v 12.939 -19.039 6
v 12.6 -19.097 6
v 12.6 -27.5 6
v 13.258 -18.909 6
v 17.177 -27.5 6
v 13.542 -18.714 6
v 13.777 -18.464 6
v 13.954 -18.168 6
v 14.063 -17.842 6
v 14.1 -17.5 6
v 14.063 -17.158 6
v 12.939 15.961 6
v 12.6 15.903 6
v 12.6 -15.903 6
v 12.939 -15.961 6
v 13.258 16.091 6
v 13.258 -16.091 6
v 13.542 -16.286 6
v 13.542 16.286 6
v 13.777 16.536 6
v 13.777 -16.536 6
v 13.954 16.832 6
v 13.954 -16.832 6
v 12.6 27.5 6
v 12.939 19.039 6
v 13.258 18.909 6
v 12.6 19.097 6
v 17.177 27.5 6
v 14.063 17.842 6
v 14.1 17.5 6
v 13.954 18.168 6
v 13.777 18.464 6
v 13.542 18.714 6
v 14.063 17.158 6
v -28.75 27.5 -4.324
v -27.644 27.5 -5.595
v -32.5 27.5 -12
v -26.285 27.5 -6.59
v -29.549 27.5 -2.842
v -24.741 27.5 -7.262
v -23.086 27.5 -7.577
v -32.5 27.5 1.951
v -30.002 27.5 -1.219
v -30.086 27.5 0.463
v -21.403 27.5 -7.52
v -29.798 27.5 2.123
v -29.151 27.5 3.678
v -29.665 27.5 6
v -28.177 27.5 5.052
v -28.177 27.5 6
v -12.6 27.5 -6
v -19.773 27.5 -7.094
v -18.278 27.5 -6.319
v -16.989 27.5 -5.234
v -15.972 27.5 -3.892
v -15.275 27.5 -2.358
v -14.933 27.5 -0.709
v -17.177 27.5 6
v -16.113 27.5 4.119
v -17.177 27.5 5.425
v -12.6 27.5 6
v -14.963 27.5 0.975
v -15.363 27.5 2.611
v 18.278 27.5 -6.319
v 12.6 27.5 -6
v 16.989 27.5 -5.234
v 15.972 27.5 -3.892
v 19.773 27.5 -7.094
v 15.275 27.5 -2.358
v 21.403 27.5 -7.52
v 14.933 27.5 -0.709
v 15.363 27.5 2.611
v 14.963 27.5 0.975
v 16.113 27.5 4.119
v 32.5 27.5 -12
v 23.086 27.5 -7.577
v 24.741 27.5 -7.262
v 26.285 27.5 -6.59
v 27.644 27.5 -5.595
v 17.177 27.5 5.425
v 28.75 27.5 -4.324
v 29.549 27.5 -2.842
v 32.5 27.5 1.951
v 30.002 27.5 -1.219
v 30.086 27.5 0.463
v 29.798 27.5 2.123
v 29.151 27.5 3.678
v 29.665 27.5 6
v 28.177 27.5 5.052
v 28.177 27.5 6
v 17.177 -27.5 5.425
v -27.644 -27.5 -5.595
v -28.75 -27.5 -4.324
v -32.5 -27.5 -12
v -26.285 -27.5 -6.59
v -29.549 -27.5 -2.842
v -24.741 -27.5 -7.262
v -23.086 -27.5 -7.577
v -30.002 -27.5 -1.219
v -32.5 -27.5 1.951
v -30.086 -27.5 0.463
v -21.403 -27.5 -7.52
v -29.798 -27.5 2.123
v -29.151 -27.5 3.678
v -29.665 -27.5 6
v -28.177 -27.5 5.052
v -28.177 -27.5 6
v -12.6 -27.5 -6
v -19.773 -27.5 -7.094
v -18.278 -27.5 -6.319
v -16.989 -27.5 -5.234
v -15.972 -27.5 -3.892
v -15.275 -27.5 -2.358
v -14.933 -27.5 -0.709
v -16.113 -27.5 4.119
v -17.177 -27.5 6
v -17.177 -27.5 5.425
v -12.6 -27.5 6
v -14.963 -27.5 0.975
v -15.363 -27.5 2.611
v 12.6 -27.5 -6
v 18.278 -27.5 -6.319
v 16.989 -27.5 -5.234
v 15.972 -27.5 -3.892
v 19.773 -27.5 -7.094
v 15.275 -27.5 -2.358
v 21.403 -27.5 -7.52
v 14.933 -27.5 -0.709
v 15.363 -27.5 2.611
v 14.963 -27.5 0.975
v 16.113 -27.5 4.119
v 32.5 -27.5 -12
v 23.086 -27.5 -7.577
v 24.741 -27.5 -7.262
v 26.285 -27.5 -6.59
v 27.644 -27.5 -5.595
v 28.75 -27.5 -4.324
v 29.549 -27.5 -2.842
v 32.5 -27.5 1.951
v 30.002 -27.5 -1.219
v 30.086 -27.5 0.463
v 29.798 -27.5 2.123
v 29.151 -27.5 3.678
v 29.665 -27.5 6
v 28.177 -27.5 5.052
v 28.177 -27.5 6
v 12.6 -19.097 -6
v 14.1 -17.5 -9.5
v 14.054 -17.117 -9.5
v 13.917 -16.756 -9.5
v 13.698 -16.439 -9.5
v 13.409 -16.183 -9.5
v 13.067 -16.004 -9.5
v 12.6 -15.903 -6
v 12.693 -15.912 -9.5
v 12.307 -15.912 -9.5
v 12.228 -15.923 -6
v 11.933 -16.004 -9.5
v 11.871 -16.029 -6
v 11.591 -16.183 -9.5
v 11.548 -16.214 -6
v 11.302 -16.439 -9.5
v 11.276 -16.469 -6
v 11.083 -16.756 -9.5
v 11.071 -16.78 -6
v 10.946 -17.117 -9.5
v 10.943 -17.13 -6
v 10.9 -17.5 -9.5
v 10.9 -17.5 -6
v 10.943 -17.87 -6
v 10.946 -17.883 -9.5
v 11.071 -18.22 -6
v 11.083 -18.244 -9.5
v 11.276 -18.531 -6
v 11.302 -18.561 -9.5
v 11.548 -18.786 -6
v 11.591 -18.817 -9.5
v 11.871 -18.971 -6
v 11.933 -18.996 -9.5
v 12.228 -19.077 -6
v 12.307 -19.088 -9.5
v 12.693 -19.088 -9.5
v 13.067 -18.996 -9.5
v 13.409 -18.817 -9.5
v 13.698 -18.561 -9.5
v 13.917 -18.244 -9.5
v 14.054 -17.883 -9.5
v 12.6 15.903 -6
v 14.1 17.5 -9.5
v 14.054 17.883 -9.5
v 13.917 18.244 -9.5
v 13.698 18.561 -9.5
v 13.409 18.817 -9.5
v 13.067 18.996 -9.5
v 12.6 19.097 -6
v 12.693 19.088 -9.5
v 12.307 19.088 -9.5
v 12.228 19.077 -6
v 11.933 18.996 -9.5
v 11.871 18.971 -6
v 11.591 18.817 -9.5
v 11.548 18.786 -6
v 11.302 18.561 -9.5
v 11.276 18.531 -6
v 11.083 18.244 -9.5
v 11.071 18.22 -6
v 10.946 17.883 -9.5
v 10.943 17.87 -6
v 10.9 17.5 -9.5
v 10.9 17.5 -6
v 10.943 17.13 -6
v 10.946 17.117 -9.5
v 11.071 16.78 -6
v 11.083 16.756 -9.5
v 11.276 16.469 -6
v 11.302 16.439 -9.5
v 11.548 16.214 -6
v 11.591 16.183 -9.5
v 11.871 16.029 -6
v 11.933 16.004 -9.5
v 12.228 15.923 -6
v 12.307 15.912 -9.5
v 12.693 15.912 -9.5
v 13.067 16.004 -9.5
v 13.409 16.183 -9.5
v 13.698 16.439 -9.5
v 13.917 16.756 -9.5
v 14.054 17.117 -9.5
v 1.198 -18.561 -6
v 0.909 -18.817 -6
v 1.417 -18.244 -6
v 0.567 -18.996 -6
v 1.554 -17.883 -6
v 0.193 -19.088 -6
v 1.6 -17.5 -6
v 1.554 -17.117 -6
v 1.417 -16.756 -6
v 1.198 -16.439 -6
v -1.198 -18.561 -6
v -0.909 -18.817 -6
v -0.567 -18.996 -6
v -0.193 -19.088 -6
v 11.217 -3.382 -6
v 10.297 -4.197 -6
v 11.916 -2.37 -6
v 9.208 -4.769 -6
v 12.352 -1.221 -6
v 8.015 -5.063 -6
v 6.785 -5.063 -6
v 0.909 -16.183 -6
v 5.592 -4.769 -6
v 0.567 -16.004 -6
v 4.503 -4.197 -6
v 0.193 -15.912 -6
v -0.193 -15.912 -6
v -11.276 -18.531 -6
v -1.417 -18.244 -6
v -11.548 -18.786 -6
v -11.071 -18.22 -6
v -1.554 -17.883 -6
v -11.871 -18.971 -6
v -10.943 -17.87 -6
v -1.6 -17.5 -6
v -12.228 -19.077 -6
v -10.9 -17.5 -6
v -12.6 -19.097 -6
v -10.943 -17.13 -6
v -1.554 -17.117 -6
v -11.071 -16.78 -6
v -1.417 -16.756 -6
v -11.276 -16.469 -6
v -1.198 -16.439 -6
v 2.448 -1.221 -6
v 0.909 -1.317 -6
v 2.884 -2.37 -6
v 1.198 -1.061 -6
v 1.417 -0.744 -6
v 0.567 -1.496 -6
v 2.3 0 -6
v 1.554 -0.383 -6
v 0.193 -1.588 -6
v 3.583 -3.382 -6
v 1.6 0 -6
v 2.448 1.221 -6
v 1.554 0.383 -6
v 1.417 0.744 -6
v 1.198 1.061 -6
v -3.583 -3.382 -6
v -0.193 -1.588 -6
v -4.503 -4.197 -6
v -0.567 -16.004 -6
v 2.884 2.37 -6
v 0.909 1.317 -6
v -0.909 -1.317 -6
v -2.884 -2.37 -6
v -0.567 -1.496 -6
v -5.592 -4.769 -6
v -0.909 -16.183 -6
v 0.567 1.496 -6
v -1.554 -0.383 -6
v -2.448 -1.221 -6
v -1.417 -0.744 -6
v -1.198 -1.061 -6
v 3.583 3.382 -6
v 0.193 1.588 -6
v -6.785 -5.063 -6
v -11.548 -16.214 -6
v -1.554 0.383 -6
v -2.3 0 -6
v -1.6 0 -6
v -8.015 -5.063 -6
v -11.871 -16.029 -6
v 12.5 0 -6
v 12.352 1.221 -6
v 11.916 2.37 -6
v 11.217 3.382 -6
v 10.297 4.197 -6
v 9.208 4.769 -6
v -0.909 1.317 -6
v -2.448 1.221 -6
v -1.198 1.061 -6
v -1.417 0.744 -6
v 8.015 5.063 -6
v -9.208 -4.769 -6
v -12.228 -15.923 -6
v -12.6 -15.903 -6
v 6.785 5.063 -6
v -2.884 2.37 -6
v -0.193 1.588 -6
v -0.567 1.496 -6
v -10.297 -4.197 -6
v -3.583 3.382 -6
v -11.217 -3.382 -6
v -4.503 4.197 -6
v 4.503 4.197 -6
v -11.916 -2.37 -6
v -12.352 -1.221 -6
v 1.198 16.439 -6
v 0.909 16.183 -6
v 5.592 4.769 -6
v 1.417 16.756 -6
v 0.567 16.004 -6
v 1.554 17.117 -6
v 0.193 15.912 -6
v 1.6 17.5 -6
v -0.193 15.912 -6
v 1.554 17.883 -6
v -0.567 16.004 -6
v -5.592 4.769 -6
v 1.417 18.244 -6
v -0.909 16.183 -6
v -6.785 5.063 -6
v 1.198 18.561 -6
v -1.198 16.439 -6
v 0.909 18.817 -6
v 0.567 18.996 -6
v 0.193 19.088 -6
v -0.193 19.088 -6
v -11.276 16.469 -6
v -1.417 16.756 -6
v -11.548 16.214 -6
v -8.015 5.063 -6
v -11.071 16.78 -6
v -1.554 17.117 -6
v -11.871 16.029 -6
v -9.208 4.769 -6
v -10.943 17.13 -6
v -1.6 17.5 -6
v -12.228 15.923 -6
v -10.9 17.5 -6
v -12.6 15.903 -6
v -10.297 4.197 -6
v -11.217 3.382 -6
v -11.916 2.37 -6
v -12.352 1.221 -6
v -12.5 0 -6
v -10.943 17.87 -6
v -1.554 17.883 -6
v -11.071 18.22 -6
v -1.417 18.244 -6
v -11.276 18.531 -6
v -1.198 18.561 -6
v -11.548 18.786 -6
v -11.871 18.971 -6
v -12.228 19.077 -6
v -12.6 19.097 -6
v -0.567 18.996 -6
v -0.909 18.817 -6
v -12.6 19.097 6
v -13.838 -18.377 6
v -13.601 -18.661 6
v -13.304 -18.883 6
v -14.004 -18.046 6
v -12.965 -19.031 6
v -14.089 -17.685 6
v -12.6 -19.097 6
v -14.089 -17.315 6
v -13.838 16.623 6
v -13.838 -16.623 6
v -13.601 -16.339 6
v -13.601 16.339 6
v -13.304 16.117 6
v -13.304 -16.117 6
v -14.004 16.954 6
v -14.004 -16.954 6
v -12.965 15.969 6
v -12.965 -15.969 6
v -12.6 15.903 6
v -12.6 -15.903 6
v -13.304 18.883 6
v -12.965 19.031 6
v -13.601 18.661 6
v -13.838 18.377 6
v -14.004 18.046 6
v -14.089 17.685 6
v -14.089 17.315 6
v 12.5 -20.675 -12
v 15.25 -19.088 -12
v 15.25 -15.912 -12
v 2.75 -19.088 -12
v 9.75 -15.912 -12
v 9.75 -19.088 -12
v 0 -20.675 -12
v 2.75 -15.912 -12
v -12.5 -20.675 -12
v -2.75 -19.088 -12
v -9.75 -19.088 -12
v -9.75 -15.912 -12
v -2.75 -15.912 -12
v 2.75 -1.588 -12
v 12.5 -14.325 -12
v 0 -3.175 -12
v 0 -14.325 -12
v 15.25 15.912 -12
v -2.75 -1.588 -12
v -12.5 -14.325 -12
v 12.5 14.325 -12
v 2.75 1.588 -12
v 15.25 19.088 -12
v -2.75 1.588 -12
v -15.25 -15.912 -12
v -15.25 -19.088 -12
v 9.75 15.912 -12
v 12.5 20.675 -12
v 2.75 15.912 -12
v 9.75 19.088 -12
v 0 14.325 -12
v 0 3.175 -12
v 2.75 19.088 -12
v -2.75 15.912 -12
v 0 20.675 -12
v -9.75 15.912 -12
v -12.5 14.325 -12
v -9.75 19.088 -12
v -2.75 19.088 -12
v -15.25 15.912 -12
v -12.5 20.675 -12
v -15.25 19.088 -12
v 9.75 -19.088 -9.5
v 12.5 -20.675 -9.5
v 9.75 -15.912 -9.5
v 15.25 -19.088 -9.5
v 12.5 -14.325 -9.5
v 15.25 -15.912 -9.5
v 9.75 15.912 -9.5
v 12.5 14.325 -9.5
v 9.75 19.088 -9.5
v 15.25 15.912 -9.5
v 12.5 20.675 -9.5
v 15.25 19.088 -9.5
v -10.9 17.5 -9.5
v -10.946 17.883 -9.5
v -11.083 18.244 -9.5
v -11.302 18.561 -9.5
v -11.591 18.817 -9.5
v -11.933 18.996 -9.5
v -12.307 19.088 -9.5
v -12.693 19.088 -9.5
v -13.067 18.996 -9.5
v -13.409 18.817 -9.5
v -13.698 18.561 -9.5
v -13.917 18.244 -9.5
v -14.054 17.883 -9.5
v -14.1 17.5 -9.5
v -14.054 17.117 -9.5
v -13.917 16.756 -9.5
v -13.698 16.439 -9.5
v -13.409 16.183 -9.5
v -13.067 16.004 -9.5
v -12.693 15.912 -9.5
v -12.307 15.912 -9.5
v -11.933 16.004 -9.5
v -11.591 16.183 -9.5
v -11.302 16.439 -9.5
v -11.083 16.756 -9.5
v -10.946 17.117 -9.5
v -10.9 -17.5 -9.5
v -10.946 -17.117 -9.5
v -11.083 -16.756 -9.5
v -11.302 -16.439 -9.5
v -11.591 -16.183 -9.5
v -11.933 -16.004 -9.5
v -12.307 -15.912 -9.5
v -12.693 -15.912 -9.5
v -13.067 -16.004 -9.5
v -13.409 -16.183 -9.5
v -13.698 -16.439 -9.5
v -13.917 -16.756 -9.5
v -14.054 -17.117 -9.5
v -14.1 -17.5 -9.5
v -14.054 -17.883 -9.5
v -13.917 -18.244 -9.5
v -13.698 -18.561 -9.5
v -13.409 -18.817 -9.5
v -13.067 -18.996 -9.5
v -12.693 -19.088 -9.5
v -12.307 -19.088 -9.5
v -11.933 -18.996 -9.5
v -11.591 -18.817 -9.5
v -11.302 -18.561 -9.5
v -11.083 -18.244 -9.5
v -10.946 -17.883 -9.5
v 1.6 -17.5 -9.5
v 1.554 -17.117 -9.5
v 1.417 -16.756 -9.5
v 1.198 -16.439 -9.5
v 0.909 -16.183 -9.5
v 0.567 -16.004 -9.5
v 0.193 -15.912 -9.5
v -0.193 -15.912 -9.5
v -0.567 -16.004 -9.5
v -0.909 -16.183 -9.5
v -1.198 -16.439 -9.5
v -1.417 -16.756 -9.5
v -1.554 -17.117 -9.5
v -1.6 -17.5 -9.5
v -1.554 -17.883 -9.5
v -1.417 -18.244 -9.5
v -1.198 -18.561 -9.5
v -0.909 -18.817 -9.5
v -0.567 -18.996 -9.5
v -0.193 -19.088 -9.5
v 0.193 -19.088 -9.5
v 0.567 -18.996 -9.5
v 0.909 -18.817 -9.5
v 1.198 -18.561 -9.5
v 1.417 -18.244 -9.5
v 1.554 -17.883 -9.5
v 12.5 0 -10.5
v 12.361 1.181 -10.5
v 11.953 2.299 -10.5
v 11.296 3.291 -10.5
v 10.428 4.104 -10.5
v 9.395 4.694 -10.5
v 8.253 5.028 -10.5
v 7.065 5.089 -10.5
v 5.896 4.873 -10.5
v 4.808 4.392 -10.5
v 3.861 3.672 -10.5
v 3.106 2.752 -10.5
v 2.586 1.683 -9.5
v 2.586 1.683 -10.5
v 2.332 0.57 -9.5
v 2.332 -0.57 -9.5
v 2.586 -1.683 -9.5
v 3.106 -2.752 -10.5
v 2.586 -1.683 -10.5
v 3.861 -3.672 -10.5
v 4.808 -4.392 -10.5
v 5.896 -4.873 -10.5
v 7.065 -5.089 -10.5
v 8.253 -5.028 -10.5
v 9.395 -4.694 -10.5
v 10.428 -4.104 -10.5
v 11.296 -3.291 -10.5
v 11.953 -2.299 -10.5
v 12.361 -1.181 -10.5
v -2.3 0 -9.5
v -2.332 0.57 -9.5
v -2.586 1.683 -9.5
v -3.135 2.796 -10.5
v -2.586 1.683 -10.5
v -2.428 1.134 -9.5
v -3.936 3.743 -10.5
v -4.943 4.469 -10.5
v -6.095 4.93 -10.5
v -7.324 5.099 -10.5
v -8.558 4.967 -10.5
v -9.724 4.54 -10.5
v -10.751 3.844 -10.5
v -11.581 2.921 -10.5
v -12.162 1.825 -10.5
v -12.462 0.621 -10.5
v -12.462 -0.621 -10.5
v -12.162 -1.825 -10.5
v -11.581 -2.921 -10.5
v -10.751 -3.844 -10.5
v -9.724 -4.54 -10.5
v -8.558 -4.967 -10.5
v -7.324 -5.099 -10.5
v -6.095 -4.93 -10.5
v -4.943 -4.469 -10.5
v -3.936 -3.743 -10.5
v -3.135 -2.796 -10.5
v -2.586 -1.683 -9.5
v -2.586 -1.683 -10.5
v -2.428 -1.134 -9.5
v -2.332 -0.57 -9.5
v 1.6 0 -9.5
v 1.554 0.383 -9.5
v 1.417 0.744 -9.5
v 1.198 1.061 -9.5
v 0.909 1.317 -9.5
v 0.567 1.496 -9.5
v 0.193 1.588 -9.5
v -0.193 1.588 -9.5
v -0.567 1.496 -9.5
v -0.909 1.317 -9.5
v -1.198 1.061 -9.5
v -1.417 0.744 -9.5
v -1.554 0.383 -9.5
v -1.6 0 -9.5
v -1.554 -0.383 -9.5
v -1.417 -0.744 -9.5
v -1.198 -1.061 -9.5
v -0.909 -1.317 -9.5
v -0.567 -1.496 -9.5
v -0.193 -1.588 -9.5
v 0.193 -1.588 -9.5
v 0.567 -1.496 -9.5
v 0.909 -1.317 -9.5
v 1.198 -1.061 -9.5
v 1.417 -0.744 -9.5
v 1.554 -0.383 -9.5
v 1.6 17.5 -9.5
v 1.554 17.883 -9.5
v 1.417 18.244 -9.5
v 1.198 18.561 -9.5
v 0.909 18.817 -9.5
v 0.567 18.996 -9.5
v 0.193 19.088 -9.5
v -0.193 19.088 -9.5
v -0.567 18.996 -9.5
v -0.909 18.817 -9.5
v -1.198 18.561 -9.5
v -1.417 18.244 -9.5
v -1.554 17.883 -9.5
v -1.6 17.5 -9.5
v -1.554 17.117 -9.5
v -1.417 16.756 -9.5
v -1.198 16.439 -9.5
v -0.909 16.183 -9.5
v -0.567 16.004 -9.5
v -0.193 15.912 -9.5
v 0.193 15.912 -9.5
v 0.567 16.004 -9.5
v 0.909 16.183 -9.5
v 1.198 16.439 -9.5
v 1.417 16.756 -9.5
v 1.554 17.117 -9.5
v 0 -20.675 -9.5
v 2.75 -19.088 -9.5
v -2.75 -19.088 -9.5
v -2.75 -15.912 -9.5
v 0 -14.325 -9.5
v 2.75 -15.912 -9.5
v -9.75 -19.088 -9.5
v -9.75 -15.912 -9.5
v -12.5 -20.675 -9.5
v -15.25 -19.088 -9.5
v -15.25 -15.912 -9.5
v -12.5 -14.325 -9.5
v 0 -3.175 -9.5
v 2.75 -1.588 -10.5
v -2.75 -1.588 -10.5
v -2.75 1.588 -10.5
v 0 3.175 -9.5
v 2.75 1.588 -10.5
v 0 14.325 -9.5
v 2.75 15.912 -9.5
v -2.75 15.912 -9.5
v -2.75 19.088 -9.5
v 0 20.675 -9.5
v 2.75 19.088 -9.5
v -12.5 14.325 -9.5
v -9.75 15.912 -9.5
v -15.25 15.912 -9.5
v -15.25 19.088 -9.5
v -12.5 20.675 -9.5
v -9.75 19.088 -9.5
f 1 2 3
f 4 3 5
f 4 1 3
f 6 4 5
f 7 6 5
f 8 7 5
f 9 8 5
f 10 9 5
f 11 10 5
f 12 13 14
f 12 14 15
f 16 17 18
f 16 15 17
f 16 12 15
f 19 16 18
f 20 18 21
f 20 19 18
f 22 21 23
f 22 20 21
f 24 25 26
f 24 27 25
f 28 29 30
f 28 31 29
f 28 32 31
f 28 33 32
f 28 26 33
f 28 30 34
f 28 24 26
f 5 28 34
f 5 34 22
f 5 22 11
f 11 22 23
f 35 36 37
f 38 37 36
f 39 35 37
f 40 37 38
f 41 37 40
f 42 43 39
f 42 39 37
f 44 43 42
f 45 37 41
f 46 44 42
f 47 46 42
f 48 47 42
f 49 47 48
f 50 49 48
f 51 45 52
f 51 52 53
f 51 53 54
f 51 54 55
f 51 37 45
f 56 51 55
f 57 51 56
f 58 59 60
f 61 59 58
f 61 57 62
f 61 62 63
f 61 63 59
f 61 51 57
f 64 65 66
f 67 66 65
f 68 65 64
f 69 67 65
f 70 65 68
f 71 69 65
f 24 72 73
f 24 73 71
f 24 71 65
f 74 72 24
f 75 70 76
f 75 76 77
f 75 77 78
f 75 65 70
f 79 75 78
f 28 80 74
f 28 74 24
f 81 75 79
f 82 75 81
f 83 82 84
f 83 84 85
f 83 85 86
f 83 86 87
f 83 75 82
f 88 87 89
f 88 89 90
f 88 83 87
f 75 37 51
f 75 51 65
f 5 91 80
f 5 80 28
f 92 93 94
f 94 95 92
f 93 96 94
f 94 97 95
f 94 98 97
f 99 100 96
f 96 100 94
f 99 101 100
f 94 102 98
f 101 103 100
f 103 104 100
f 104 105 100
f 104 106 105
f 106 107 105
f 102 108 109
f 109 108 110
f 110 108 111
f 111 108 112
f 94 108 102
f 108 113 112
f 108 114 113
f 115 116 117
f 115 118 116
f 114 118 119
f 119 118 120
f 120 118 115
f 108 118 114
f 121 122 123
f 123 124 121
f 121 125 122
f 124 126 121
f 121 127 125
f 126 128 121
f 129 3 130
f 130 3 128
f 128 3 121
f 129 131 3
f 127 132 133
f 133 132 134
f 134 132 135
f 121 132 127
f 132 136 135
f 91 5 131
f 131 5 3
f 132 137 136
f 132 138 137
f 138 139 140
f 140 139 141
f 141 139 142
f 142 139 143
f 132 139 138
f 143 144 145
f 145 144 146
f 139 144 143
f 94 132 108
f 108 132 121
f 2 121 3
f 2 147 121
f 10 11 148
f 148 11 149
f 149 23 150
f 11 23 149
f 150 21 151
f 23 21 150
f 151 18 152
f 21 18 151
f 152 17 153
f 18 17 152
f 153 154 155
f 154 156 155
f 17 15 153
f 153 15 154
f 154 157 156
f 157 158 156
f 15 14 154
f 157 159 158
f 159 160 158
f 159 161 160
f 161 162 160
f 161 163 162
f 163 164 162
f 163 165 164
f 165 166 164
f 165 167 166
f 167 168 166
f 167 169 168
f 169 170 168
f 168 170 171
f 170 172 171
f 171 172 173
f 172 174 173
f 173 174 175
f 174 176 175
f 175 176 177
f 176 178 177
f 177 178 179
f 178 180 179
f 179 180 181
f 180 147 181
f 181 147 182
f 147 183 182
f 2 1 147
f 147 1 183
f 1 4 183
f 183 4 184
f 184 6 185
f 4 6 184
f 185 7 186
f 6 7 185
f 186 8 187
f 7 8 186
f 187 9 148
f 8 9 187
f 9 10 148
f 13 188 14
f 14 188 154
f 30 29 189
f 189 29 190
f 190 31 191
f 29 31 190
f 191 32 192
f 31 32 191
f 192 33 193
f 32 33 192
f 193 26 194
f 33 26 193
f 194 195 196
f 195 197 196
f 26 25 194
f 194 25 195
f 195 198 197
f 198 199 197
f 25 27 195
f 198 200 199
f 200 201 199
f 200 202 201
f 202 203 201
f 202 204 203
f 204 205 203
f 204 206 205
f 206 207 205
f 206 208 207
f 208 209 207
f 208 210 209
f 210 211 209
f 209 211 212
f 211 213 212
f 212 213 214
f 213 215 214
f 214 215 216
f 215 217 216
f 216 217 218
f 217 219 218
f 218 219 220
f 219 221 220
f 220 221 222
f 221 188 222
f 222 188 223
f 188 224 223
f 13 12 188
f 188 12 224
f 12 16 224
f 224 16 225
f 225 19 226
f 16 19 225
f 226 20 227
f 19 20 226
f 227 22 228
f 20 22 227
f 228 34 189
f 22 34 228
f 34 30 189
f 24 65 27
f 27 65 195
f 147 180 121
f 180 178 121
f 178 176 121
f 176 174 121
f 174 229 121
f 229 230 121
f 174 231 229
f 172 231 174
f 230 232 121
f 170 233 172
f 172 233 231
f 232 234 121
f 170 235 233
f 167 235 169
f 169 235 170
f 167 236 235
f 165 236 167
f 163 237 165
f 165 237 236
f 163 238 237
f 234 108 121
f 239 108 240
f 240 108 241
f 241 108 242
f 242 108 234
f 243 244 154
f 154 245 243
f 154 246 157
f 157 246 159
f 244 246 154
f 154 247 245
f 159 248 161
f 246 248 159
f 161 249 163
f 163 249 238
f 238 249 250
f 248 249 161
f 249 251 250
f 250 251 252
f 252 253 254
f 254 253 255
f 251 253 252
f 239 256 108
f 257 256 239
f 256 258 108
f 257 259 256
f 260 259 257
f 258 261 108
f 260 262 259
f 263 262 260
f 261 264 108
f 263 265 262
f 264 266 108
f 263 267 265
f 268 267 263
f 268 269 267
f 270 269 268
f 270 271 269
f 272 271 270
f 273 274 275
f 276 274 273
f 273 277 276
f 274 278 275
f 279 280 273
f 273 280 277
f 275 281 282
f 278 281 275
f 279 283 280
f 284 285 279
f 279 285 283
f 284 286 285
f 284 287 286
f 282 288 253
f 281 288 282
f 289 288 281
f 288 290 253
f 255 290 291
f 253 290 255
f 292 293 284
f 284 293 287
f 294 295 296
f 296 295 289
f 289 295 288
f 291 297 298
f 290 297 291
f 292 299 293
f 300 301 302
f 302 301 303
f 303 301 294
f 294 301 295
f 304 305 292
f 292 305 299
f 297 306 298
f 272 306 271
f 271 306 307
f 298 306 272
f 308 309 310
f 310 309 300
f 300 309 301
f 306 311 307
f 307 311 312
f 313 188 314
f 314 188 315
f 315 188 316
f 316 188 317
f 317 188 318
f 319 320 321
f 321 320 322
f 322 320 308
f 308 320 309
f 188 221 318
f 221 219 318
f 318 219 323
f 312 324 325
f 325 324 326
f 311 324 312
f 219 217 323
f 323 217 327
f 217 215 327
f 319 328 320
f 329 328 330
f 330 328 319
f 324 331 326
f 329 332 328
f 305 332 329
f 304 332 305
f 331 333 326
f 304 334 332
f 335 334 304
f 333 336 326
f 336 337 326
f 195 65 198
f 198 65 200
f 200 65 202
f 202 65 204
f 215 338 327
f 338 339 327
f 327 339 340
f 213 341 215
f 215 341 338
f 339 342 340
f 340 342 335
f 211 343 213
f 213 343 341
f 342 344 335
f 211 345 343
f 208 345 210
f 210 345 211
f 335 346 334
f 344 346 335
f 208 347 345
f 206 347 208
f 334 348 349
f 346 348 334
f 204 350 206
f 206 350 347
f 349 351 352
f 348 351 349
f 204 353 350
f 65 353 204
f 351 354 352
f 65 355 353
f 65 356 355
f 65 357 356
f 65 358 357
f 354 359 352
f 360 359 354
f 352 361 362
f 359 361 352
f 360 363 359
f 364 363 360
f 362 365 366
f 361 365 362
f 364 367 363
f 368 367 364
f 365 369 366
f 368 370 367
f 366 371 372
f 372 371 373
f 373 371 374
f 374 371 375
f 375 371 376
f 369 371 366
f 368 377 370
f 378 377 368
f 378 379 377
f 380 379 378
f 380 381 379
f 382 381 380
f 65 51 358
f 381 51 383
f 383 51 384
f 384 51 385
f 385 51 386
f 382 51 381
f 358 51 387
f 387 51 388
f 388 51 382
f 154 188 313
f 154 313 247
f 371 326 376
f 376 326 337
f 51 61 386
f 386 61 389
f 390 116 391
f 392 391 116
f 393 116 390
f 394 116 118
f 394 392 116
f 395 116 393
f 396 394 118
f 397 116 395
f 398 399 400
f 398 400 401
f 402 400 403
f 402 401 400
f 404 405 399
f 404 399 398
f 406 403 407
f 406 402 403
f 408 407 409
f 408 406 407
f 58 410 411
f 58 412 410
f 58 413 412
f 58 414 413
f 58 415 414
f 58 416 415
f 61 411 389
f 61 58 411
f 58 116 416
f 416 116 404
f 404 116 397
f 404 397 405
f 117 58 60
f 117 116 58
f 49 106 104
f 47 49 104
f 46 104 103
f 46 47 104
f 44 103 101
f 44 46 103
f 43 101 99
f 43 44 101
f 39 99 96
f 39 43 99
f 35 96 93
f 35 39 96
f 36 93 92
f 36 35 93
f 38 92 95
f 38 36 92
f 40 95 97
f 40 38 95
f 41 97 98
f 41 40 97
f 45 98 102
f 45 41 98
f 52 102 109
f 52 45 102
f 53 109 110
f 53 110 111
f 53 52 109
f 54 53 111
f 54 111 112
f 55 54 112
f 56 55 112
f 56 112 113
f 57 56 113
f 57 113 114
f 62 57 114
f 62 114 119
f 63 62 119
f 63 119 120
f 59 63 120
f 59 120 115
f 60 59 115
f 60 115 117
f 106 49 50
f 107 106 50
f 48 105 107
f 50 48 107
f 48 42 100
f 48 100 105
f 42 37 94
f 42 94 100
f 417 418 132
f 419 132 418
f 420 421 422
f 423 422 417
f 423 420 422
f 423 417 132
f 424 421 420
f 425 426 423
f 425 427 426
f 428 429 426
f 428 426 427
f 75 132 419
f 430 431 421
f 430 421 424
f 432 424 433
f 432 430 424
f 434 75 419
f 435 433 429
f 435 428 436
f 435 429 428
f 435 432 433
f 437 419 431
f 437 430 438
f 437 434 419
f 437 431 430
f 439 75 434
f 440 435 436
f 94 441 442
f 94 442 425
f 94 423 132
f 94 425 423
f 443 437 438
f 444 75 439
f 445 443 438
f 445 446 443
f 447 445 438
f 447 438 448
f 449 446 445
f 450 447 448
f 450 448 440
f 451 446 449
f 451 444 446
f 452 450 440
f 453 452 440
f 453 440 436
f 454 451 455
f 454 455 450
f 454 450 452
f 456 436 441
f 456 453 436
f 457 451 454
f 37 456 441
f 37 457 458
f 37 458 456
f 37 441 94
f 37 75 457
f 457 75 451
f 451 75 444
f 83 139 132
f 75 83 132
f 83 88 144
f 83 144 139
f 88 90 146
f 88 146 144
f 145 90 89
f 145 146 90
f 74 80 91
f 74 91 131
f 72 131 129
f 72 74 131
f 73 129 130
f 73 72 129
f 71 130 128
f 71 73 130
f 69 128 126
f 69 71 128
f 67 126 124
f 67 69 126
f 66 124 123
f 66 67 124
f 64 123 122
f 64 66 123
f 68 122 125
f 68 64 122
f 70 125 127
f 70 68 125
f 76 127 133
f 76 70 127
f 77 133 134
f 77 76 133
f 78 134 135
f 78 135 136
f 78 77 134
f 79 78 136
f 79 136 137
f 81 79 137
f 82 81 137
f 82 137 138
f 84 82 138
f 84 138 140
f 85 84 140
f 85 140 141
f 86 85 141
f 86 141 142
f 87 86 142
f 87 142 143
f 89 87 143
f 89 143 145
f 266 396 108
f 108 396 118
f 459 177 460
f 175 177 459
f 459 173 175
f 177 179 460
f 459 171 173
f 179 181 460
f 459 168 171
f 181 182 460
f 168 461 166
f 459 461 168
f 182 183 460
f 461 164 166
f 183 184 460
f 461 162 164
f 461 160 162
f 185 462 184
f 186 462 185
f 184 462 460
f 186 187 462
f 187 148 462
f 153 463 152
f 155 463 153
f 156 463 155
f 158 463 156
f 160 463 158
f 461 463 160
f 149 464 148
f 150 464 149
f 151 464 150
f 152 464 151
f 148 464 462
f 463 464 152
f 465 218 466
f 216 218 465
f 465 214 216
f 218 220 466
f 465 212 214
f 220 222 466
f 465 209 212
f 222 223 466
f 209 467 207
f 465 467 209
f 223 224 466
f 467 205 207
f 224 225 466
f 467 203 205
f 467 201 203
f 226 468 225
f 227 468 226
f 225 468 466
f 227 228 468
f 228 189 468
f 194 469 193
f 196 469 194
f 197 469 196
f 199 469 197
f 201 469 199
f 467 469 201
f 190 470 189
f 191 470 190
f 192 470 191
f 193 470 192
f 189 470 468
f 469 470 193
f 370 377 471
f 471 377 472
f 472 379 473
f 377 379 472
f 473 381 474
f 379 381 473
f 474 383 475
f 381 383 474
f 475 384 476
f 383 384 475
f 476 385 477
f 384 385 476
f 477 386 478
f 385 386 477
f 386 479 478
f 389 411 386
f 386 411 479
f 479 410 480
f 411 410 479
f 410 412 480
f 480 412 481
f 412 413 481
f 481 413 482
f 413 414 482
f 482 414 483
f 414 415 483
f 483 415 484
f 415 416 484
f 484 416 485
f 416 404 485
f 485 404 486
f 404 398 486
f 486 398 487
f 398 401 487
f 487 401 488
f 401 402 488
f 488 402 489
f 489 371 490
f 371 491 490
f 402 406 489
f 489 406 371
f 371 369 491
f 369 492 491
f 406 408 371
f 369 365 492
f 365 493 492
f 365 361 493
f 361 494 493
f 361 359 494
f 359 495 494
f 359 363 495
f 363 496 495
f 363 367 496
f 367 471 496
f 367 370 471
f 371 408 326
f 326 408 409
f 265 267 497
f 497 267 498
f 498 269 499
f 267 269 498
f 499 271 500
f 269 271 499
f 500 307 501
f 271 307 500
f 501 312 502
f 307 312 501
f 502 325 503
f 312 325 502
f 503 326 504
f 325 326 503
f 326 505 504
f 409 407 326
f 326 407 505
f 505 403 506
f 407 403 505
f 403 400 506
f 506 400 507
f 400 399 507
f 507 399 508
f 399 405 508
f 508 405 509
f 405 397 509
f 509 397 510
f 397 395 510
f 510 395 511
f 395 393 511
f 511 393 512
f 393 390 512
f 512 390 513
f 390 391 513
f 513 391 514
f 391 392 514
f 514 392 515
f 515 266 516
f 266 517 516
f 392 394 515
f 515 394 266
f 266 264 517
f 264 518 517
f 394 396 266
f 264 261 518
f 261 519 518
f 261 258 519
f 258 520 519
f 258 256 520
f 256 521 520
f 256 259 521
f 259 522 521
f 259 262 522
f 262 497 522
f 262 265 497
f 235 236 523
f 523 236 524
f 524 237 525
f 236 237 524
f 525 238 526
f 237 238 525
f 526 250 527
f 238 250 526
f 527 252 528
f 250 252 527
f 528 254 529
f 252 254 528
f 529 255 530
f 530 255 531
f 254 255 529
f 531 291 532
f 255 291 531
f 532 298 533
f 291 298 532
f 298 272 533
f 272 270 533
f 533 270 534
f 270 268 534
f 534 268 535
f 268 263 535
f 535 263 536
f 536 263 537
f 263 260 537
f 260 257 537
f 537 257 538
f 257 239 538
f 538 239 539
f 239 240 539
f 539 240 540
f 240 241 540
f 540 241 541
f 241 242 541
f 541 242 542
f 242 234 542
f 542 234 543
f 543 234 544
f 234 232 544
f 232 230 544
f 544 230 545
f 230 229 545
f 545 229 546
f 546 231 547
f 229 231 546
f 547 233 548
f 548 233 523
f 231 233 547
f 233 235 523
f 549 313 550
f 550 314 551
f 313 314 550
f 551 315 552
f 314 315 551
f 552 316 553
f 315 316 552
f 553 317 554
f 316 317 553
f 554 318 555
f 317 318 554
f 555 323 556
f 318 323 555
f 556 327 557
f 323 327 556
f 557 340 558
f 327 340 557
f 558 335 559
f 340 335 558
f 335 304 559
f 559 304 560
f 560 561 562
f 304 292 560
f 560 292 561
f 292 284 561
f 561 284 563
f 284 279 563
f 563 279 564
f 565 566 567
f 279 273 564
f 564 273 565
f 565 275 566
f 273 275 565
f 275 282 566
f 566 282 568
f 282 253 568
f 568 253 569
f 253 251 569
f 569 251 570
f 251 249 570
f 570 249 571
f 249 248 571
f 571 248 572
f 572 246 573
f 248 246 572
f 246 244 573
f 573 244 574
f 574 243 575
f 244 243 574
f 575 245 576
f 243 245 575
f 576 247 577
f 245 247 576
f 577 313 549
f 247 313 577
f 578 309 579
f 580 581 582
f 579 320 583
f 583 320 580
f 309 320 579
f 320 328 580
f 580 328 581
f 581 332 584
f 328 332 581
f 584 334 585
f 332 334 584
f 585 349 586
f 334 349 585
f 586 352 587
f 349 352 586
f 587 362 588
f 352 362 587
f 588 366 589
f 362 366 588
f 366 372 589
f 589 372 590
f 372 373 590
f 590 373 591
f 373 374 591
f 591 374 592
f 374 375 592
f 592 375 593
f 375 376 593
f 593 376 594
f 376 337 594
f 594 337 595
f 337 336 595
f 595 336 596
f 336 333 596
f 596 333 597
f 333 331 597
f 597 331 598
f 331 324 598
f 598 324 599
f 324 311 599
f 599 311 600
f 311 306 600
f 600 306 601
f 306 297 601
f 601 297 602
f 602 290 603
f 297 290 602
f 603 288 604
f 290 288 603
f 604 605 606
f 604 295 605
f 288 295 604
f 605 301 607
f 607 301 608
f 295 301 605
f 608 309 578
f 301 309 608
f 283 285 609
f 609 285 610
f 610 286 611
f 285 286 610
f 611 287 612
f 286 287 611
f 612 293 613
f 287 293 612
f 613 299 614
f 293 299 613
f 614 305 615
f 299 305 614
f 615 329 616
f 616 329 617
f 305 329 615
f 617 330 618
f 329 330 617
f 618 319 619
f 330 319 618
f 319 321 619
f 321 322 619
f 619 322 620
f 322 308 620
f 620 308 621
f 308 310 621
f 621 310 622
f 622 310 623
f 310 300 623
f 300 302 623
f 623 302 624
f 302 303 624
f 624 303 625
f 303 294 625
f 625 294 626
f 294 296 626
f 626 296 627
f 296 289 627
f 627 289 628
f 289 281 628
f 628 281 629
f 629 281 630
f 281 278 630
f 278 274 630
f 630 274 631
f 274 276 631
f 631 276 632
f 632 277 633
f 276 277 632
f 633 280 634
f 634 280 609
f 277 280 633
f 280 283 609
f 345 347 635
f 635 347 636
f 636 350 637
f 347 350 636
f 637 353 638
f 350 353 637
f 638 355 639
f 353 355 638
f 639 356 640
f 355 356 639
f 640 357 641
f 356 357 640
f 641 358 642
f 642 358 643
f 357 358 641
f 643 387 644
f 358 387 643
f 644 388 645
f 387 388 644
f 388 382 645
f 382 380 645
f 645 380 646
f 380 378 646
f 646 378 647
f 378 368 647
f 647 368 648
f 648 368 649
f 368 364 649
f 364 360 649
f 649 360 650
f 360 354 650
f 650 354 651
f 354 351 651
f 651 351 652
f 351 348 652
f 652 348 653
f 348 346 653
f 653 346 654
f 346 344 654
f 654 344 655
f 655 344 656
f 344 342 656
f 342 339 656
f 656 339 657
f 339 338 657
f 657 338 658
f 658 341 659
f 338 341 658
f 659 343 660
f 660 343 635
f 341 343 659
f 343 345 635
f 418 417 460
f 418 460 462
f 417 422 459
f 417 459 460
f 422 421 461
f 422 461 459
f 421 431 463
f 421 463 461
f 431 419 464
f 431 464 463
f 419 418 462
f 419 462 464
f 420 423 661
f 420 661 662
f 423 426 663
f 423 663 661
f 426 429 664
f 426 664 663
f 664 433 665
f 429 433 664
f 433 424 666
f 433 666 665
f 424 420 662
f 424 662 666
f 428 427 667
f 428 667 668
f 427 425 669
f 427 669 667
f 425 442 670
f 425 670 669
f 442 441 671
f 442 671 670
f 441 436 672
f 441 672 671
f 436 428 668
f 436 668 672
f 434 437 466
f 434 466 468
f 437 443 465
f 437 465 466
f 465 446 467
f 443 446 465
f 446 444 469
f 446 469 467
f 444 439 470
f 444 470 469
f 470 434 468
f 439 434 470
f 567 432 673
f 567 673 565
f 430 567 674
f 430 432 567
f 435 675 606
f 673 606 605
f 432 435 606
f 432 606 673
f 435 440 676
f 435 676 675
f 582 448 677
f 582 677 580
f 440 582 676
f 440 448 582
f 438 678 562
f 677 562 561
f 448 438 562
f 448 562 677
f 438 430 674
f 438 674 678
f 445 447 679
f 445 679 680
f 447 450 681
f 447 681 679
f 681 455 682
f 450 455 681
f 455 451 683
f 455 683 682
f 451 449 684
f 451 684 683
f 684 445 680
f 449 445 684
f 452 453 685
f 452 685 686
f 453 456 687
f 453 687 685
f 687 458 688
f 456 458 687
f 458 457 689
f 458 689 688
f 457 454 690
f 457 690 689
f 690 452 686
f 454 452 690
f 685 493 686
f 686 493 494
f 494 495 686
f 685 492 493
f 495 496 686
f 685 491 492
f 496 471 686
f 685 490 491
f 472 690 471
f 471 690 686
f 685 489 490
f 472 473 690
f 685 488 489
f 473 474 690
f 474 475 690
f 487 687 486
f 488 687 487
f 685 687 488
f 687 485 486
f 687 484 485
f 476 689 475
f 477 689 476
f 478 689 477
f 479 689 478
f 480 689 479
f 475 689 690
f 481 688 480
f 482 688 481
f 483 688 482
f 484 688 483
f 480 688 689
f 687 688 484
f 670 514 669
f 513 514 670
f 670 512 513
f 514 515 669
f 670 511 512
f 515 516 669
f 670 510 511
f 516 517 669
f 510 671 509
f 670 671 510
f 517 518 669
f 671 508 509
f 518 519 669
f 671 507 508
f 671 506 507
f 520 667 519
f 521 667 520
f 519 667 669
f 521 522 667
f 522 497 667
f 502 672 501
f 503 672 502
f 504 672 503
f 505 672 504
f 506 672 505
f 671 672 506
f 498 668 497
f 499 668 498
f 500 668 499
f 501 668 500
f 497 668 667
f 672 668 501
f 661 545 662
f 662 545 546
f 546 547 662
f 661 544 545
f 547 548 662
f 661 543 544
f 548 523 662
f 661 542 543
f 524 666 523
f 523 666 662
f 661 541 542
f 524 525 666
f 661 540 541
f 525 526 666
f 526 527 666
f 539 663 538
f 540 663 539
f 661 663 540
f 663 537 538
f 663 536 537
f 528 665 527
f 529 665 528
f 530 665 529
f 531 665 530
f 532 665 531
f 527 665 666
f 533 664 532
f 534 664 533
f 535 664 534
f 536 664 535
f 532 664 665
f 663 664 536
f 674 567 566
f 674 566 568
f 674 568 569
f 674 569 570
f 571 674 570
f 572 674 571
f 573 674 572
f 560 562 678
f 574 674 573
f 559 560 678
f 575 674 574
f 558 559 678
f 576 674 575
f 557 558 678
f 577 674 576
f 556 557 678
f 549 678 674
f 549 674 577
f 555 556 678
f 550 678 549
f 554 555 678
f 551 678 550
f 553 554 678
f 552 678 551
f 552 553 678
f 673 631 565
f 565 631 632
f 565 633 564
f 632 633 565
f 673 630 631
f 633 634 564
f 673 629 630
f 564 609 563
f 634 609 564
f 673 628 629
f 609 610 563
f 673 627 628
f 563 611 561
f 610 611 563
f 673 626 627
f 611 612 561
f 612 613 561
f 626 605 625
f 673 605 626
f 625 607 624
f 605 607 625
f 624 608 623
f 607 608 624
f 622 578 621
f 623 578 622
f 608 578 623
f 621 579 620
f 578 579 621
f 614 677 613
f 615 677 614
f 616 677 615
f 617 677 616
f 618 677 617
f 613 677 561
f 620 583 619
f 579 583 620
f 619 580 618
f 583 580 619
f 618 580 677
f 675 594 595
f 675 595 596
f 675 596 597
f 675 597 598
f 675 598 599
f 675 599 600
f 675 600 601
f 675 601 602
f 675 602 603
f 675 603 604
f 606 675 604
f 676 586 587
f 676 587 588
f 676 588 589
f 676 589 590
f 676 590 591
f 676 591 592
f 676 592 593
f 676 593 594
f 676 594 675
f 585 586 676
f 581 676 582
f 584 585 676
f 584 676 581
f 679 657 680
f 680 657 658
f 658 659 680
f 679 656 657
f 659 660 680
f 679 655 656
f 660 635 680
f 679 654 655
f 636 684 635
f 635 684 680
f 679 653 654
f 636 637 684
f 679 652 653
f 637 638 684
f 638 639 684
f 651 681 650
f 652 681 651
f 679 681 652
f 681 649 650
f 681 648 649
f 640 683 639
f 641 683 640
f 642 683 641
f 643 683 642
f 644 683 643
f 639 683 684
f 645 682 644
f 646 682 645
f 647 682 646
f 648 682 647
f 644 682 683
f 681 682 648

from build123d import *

# Parameters (mm, degrees)
PAD_DEPTH            = 27.5
SKETCH001_R          = 1.6
POCKET_DEPTH         = 12.001
POCKET_DEPTH_BACK    = -6.001
SKETCH002_R          = 5.1
POCKET001_DEPTH      = 10.5
SKETCH004_W          = 11
SKETCH004_H          = 11
POCKET003_DEPTH      = 27.501
POCKET003_DEPTH_BACK = -27.501
POCKET004_DEPTH      = 2.5


with BuildPart() as part:
    # Sketch → Pad (new body, symmetric)
    with BuildSketch(Plane.XZ):
        with BuildLine():
            Line((-29.664762, 6), (-27.164762, 6))
            ThreePointArc((-27.164762, 6), (-22.5, -7.6), (-17.835238, 6))
            Line((-17.835238, 6), (-12.6, 6))
            Line((-12.6, -6), (-12.6, 6))
            Line((12.6, -6), (-12.6, -6))
            Line((12.6, 6), (12.6, -6))
            Line((12.6, 6), (17.835238, 6))
            ThreePointArc((17.835238, 6), (22.5, -7.6), (27.164762, 6))
            Line((27.164762, 6), (29.664762, 6))
            Line((29.664762, 6), (32.5, 1.95086))
            Line((32.5, 1.95086), (32.5, -12))
            Line((32.5, -12), (-32.5, -12))
            Line((-32.5, -12), (-32.5, 1.95086))
            Line((-32.5, 1.95086), (-29.664762, 6))
        make_face()
    extrude(amount=PAD_DEPTH, both=True)

    # Sketch001 → Pocket (cut, two sides)
    with BuildSketch(Plane.XY) as pocket_sk:
        with Locations((-12.5, 17.5)):
            Circle(SKETCH001_R)
        with Locations((-12.5, -17.5)):
            Circle(SKETCH001_R)
        with Locations((12.5, 17.5)):
            Circle(SKETCH001_R)
        with Locations((12.5, -17.5)):
            Circle(SKETCH001_R)
        with Locations((0, 17.5)):
            Circle(SKETCH001_R)
        with Locations((0, -17.5)):
            Circle(SKETCH001_R)
        Circle(SKETCH001_R)
    extrude(amount=-POCKET_DEPTH, mode=Mode.SUBTRACT)
    extrude(pocket_sk.sketch, amount=-POCKET_DEPTH_BACK, mode=Mode.SUBTRACT)

    # Sketch002 → Pocket001 (cut)
    with BuildSketch(Plane.XY):
        with Locations((-7.4, 0)):
            Circle(SKETCH002_R)
        with Locations((7.4, 0)):
            Circle(SKETCH002_R)
    extrude(amount=-POCKET001_DEPTH, mode=Mode.SUBTRACT)

    # Sketch004 → Pocket003 (cut, two sides)
    with BuildSketch(Plane.XZ) as pocket003_sk:
        with Locations((-22.677406, 5.5)):
            Rectangle(SKETCH004_W, SKETCH004_H)
        with Locations((22.677406, 5.5)):
            Rectangle(SKETCH004_W, SKETCH004_H)
    extrude(amount=-POCKET003_DEPTH, mode=Mode.SUBTRACT)
    extrude(pocket003_sk.sketch, amount=-POCKET003_DEPTH_BACK, mode=Mode.SUBTRACT)

    # Sketch005 (on DatumPlane) → Pocket004 (cut)
    with BuildSketch(Plane.XY.offset(-12)):
        Polygon((-9.75, 15.912287), (-9.75, 19.087713), (-12.5, 20.675426), (-15.25, 19.087713), (-15.25, 15.912287), (-12.5, 14.324574), align=None)
        Polygon((2.75, 15.912287), (2.75, 19.087713), (0, 20.675426), (-2.75, 19.087713), (-2.75, 15.912287), (0, 14.324574), align=None)
        Polygon((15.25, 15.912287), (15.25, 19.087713), (12.5, 20.675426), (9.75, 19.087713), (9.75, 15.912287), (12.5, 14.324574), align=None)
        Polygon((2.75, -1.587713), (2.75, 1.587713), (0, 3.175426), (-2.75, 1.587713), (-2.75, -1.587713), (0, -3.175426), align=None)
        Polygon((-9.75, -15.912287), (-12.5, -14.324574), (-15.25, -15.912287), (-15.25, -19.087713), (-12.5, -20.675426), (-9.75, -19.087713), align=None)
        Polygon((2.75, -19.087713), (2.75, -15.912287), (0, -14.324574), (-2.75, -15.912287), (-2.75, -19.087713), (0, -20.675426), align=None)
        Polygon((15.25, -19.087713), (15.25, -15.912287), (12.5, -14.324574), (9.75, -15.912287), (9.75, -19.087713), (12.5, -20.675426), align=None)
    extrude(amount=POCKET004_DEPTH, mode=Mode.SUBTRACT)


solid = part.part
